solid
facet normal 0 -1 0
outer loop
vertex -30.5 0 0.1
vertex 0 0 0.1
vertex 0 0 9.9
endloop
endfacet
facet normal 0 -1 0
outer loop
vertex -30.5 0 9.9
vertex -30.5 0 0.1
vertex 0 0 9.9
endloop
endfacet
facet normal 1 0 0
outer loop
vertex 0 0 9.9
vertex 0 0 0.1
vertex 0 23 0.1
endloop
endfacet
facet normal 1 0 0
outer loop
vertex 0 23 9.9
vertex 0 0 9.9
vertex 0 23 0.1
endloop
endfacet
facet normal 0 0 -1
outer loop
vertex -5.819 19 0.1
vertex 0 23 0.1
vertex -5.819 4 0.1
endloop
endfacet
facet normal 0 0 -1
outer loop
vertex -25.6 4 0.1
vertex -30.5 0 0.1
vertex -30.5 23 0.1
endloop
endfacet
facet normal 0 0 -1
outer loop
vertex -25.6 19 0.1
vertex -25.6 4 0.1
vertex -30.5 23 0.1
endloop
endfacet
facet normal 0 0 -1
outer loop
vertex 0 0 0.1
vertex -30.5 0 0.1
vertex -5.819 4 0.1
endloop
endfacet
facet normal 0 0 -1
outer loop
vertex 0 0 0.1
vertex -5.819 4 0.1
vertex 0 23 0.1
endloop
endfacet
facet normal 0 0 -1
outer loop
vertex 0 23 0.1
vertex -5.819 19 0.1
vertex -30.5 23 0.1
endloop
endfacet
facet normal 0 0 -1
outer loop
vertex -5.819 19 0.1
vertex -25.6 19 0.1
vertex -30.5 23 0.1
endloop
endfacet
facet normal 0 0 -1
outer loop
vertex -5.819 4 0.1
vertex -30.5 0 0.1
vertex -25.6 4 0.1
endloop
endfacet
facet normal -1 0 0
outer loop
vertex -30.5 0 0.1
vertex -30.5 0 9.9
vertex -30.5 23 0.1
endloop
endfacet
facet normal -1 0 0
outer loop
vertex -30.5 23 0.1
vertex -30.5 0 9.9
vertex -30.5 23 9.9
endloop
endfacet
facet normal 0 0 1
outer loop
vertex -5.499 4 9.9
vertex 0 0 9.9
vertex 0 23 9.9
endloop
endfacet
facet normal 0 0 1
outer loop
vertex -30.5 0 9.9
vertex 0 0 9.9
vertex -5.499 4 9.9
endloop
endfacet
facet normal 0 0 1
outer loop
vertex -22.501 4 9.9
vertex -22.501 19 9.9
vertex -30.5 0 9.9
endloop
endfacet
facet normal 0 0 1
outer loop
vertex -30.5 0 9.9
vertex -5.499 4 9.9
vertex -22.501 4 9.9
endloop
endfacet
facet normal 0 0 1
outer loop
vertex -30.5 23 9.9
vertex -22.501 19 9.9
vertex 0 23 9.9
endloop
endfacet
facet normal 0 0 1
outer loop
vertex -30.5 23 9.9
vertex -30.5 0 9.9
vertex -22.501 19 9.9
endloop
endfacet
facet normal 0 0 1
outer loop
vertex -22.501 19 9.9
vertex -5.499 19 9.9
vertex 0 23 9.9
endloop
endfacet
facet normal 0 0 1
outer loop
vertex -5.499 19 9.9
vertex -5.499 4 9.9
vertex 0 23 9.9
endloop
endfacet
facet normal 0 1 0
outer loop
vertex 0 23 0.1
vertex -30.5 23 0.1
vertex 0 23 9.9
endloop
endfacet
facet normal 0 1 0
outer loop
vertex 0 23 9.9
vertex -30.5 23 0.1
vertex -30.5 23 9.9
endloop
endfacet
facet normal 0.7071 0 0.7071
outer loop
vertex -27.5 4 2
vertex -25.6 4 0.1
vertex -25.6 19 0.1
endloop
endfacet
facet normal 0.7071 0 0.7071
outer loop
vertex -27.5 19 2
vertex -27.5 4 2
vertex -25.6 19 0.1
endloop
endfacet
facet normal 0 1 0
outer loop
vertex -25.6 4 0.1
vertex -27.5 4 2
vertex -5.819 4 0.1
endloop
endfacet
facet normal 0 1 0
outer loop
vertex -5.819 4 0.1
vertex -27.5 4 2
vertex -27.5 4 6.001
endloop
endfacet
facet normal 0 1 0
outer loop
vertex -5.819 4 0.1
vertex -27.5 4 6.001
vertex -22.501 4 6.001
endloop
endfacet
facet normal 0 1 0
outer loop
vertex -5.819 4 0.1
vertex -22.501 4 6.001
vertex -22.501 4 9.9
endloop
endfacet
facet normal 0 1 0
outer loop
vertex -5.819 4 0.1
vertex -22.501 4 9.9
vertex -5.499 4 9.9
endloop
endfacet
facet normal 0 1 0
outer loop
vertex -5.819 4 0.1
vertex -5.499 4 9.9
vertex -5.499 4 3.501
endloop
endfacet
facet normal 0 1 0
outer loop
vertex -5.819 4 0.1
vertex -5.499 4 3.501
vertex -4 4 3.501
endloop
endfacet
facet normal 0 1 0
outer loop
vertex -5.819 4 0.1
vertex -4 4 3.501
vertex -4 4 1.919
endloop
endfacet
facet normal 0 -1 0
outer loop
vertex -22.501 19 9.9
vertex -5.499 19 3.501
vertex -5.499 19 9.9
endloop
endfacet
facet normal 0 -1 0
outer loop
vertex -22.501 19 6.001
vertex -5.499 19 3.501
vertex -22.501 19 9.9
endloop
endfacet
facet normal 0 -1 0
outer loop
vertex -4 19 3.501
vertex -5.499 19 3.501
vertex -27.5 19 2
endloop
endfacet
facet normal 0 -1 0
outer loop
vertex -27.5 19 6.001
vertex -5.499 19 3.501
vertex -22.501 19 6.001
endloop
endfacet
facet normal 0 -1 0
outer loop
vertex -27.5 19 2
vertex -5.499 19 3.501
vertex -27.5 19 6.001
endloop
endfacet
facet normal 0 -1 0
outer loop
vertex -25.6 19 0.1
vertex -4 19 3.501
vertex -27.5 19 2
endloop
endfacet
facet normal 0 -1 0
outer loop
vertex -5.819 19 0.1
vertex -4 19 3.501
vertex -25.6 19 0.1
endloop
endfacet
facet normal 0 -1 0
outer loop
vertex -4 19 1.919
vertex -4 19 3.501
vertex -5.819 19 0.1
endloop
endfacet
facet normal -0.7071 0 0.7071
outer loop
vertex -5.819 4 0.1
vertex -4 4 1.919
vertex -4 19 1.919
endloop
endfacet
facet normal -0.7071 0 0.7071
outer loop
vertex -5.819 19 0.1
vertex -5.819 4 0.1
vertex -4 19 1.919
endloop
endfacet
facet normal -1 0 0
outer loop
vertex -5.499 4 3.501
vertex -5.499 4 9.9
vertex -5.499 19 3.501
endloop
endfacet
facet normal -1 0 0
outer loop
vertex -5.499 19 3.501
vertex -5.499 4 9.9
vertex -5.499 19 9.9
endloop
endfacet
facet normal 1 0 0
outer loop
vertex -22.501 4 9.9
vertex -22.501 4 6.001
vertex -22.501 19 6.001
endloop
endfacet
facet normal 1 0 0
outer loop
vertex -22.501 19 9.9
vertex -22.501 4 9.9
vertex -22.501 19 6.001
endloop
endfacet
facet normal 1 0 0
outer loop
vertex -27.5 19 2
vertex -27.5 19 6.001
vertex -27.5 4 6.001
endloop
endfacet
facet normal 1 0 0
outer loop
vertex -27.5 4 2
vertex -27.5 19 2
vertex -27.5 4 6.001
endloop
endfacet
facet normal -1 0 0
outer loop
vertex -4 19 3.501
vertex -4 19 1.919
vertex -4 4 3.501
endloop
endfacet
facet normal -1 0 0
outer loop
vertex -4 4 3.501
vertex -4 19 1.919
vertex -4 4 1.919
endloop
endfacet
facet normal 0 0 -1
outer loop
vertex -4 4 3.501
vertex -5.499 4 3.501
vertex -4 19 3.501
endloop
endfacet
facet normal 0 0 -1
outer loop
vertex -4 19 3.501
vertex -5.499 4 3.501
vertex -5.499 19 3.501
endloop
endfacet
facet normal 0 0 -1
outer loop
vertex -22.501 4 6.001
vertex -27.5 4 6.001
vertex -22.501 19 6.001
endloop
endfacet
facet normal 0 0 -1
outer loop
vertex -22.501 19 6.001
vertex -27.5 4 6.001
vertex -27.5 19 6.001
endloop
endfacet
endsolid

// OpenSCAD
module keystone()
{
     rotate([0,0,90]) {
			difference(){
				translate([0,0,.1]) cube([23,30.5,9.8]);
					translate([4,4,0]){
						difference(){
							cube([15,23.5,10]);
							translate([-1,-.501,3.501]) cube([17,2,6.5]);  // add .501
							translate([-1,2.5,-3.40970]) rotate([45,0,0]) cube([17,2,6.5]);
							translate([-1,18.501,6.001]) cube([17,5,4]);
							translate([-1,21.5,0]) rotate([-45,0,0]) cube([17,2,6.5]);
						}
					}
				}
			}
}

keystone();
